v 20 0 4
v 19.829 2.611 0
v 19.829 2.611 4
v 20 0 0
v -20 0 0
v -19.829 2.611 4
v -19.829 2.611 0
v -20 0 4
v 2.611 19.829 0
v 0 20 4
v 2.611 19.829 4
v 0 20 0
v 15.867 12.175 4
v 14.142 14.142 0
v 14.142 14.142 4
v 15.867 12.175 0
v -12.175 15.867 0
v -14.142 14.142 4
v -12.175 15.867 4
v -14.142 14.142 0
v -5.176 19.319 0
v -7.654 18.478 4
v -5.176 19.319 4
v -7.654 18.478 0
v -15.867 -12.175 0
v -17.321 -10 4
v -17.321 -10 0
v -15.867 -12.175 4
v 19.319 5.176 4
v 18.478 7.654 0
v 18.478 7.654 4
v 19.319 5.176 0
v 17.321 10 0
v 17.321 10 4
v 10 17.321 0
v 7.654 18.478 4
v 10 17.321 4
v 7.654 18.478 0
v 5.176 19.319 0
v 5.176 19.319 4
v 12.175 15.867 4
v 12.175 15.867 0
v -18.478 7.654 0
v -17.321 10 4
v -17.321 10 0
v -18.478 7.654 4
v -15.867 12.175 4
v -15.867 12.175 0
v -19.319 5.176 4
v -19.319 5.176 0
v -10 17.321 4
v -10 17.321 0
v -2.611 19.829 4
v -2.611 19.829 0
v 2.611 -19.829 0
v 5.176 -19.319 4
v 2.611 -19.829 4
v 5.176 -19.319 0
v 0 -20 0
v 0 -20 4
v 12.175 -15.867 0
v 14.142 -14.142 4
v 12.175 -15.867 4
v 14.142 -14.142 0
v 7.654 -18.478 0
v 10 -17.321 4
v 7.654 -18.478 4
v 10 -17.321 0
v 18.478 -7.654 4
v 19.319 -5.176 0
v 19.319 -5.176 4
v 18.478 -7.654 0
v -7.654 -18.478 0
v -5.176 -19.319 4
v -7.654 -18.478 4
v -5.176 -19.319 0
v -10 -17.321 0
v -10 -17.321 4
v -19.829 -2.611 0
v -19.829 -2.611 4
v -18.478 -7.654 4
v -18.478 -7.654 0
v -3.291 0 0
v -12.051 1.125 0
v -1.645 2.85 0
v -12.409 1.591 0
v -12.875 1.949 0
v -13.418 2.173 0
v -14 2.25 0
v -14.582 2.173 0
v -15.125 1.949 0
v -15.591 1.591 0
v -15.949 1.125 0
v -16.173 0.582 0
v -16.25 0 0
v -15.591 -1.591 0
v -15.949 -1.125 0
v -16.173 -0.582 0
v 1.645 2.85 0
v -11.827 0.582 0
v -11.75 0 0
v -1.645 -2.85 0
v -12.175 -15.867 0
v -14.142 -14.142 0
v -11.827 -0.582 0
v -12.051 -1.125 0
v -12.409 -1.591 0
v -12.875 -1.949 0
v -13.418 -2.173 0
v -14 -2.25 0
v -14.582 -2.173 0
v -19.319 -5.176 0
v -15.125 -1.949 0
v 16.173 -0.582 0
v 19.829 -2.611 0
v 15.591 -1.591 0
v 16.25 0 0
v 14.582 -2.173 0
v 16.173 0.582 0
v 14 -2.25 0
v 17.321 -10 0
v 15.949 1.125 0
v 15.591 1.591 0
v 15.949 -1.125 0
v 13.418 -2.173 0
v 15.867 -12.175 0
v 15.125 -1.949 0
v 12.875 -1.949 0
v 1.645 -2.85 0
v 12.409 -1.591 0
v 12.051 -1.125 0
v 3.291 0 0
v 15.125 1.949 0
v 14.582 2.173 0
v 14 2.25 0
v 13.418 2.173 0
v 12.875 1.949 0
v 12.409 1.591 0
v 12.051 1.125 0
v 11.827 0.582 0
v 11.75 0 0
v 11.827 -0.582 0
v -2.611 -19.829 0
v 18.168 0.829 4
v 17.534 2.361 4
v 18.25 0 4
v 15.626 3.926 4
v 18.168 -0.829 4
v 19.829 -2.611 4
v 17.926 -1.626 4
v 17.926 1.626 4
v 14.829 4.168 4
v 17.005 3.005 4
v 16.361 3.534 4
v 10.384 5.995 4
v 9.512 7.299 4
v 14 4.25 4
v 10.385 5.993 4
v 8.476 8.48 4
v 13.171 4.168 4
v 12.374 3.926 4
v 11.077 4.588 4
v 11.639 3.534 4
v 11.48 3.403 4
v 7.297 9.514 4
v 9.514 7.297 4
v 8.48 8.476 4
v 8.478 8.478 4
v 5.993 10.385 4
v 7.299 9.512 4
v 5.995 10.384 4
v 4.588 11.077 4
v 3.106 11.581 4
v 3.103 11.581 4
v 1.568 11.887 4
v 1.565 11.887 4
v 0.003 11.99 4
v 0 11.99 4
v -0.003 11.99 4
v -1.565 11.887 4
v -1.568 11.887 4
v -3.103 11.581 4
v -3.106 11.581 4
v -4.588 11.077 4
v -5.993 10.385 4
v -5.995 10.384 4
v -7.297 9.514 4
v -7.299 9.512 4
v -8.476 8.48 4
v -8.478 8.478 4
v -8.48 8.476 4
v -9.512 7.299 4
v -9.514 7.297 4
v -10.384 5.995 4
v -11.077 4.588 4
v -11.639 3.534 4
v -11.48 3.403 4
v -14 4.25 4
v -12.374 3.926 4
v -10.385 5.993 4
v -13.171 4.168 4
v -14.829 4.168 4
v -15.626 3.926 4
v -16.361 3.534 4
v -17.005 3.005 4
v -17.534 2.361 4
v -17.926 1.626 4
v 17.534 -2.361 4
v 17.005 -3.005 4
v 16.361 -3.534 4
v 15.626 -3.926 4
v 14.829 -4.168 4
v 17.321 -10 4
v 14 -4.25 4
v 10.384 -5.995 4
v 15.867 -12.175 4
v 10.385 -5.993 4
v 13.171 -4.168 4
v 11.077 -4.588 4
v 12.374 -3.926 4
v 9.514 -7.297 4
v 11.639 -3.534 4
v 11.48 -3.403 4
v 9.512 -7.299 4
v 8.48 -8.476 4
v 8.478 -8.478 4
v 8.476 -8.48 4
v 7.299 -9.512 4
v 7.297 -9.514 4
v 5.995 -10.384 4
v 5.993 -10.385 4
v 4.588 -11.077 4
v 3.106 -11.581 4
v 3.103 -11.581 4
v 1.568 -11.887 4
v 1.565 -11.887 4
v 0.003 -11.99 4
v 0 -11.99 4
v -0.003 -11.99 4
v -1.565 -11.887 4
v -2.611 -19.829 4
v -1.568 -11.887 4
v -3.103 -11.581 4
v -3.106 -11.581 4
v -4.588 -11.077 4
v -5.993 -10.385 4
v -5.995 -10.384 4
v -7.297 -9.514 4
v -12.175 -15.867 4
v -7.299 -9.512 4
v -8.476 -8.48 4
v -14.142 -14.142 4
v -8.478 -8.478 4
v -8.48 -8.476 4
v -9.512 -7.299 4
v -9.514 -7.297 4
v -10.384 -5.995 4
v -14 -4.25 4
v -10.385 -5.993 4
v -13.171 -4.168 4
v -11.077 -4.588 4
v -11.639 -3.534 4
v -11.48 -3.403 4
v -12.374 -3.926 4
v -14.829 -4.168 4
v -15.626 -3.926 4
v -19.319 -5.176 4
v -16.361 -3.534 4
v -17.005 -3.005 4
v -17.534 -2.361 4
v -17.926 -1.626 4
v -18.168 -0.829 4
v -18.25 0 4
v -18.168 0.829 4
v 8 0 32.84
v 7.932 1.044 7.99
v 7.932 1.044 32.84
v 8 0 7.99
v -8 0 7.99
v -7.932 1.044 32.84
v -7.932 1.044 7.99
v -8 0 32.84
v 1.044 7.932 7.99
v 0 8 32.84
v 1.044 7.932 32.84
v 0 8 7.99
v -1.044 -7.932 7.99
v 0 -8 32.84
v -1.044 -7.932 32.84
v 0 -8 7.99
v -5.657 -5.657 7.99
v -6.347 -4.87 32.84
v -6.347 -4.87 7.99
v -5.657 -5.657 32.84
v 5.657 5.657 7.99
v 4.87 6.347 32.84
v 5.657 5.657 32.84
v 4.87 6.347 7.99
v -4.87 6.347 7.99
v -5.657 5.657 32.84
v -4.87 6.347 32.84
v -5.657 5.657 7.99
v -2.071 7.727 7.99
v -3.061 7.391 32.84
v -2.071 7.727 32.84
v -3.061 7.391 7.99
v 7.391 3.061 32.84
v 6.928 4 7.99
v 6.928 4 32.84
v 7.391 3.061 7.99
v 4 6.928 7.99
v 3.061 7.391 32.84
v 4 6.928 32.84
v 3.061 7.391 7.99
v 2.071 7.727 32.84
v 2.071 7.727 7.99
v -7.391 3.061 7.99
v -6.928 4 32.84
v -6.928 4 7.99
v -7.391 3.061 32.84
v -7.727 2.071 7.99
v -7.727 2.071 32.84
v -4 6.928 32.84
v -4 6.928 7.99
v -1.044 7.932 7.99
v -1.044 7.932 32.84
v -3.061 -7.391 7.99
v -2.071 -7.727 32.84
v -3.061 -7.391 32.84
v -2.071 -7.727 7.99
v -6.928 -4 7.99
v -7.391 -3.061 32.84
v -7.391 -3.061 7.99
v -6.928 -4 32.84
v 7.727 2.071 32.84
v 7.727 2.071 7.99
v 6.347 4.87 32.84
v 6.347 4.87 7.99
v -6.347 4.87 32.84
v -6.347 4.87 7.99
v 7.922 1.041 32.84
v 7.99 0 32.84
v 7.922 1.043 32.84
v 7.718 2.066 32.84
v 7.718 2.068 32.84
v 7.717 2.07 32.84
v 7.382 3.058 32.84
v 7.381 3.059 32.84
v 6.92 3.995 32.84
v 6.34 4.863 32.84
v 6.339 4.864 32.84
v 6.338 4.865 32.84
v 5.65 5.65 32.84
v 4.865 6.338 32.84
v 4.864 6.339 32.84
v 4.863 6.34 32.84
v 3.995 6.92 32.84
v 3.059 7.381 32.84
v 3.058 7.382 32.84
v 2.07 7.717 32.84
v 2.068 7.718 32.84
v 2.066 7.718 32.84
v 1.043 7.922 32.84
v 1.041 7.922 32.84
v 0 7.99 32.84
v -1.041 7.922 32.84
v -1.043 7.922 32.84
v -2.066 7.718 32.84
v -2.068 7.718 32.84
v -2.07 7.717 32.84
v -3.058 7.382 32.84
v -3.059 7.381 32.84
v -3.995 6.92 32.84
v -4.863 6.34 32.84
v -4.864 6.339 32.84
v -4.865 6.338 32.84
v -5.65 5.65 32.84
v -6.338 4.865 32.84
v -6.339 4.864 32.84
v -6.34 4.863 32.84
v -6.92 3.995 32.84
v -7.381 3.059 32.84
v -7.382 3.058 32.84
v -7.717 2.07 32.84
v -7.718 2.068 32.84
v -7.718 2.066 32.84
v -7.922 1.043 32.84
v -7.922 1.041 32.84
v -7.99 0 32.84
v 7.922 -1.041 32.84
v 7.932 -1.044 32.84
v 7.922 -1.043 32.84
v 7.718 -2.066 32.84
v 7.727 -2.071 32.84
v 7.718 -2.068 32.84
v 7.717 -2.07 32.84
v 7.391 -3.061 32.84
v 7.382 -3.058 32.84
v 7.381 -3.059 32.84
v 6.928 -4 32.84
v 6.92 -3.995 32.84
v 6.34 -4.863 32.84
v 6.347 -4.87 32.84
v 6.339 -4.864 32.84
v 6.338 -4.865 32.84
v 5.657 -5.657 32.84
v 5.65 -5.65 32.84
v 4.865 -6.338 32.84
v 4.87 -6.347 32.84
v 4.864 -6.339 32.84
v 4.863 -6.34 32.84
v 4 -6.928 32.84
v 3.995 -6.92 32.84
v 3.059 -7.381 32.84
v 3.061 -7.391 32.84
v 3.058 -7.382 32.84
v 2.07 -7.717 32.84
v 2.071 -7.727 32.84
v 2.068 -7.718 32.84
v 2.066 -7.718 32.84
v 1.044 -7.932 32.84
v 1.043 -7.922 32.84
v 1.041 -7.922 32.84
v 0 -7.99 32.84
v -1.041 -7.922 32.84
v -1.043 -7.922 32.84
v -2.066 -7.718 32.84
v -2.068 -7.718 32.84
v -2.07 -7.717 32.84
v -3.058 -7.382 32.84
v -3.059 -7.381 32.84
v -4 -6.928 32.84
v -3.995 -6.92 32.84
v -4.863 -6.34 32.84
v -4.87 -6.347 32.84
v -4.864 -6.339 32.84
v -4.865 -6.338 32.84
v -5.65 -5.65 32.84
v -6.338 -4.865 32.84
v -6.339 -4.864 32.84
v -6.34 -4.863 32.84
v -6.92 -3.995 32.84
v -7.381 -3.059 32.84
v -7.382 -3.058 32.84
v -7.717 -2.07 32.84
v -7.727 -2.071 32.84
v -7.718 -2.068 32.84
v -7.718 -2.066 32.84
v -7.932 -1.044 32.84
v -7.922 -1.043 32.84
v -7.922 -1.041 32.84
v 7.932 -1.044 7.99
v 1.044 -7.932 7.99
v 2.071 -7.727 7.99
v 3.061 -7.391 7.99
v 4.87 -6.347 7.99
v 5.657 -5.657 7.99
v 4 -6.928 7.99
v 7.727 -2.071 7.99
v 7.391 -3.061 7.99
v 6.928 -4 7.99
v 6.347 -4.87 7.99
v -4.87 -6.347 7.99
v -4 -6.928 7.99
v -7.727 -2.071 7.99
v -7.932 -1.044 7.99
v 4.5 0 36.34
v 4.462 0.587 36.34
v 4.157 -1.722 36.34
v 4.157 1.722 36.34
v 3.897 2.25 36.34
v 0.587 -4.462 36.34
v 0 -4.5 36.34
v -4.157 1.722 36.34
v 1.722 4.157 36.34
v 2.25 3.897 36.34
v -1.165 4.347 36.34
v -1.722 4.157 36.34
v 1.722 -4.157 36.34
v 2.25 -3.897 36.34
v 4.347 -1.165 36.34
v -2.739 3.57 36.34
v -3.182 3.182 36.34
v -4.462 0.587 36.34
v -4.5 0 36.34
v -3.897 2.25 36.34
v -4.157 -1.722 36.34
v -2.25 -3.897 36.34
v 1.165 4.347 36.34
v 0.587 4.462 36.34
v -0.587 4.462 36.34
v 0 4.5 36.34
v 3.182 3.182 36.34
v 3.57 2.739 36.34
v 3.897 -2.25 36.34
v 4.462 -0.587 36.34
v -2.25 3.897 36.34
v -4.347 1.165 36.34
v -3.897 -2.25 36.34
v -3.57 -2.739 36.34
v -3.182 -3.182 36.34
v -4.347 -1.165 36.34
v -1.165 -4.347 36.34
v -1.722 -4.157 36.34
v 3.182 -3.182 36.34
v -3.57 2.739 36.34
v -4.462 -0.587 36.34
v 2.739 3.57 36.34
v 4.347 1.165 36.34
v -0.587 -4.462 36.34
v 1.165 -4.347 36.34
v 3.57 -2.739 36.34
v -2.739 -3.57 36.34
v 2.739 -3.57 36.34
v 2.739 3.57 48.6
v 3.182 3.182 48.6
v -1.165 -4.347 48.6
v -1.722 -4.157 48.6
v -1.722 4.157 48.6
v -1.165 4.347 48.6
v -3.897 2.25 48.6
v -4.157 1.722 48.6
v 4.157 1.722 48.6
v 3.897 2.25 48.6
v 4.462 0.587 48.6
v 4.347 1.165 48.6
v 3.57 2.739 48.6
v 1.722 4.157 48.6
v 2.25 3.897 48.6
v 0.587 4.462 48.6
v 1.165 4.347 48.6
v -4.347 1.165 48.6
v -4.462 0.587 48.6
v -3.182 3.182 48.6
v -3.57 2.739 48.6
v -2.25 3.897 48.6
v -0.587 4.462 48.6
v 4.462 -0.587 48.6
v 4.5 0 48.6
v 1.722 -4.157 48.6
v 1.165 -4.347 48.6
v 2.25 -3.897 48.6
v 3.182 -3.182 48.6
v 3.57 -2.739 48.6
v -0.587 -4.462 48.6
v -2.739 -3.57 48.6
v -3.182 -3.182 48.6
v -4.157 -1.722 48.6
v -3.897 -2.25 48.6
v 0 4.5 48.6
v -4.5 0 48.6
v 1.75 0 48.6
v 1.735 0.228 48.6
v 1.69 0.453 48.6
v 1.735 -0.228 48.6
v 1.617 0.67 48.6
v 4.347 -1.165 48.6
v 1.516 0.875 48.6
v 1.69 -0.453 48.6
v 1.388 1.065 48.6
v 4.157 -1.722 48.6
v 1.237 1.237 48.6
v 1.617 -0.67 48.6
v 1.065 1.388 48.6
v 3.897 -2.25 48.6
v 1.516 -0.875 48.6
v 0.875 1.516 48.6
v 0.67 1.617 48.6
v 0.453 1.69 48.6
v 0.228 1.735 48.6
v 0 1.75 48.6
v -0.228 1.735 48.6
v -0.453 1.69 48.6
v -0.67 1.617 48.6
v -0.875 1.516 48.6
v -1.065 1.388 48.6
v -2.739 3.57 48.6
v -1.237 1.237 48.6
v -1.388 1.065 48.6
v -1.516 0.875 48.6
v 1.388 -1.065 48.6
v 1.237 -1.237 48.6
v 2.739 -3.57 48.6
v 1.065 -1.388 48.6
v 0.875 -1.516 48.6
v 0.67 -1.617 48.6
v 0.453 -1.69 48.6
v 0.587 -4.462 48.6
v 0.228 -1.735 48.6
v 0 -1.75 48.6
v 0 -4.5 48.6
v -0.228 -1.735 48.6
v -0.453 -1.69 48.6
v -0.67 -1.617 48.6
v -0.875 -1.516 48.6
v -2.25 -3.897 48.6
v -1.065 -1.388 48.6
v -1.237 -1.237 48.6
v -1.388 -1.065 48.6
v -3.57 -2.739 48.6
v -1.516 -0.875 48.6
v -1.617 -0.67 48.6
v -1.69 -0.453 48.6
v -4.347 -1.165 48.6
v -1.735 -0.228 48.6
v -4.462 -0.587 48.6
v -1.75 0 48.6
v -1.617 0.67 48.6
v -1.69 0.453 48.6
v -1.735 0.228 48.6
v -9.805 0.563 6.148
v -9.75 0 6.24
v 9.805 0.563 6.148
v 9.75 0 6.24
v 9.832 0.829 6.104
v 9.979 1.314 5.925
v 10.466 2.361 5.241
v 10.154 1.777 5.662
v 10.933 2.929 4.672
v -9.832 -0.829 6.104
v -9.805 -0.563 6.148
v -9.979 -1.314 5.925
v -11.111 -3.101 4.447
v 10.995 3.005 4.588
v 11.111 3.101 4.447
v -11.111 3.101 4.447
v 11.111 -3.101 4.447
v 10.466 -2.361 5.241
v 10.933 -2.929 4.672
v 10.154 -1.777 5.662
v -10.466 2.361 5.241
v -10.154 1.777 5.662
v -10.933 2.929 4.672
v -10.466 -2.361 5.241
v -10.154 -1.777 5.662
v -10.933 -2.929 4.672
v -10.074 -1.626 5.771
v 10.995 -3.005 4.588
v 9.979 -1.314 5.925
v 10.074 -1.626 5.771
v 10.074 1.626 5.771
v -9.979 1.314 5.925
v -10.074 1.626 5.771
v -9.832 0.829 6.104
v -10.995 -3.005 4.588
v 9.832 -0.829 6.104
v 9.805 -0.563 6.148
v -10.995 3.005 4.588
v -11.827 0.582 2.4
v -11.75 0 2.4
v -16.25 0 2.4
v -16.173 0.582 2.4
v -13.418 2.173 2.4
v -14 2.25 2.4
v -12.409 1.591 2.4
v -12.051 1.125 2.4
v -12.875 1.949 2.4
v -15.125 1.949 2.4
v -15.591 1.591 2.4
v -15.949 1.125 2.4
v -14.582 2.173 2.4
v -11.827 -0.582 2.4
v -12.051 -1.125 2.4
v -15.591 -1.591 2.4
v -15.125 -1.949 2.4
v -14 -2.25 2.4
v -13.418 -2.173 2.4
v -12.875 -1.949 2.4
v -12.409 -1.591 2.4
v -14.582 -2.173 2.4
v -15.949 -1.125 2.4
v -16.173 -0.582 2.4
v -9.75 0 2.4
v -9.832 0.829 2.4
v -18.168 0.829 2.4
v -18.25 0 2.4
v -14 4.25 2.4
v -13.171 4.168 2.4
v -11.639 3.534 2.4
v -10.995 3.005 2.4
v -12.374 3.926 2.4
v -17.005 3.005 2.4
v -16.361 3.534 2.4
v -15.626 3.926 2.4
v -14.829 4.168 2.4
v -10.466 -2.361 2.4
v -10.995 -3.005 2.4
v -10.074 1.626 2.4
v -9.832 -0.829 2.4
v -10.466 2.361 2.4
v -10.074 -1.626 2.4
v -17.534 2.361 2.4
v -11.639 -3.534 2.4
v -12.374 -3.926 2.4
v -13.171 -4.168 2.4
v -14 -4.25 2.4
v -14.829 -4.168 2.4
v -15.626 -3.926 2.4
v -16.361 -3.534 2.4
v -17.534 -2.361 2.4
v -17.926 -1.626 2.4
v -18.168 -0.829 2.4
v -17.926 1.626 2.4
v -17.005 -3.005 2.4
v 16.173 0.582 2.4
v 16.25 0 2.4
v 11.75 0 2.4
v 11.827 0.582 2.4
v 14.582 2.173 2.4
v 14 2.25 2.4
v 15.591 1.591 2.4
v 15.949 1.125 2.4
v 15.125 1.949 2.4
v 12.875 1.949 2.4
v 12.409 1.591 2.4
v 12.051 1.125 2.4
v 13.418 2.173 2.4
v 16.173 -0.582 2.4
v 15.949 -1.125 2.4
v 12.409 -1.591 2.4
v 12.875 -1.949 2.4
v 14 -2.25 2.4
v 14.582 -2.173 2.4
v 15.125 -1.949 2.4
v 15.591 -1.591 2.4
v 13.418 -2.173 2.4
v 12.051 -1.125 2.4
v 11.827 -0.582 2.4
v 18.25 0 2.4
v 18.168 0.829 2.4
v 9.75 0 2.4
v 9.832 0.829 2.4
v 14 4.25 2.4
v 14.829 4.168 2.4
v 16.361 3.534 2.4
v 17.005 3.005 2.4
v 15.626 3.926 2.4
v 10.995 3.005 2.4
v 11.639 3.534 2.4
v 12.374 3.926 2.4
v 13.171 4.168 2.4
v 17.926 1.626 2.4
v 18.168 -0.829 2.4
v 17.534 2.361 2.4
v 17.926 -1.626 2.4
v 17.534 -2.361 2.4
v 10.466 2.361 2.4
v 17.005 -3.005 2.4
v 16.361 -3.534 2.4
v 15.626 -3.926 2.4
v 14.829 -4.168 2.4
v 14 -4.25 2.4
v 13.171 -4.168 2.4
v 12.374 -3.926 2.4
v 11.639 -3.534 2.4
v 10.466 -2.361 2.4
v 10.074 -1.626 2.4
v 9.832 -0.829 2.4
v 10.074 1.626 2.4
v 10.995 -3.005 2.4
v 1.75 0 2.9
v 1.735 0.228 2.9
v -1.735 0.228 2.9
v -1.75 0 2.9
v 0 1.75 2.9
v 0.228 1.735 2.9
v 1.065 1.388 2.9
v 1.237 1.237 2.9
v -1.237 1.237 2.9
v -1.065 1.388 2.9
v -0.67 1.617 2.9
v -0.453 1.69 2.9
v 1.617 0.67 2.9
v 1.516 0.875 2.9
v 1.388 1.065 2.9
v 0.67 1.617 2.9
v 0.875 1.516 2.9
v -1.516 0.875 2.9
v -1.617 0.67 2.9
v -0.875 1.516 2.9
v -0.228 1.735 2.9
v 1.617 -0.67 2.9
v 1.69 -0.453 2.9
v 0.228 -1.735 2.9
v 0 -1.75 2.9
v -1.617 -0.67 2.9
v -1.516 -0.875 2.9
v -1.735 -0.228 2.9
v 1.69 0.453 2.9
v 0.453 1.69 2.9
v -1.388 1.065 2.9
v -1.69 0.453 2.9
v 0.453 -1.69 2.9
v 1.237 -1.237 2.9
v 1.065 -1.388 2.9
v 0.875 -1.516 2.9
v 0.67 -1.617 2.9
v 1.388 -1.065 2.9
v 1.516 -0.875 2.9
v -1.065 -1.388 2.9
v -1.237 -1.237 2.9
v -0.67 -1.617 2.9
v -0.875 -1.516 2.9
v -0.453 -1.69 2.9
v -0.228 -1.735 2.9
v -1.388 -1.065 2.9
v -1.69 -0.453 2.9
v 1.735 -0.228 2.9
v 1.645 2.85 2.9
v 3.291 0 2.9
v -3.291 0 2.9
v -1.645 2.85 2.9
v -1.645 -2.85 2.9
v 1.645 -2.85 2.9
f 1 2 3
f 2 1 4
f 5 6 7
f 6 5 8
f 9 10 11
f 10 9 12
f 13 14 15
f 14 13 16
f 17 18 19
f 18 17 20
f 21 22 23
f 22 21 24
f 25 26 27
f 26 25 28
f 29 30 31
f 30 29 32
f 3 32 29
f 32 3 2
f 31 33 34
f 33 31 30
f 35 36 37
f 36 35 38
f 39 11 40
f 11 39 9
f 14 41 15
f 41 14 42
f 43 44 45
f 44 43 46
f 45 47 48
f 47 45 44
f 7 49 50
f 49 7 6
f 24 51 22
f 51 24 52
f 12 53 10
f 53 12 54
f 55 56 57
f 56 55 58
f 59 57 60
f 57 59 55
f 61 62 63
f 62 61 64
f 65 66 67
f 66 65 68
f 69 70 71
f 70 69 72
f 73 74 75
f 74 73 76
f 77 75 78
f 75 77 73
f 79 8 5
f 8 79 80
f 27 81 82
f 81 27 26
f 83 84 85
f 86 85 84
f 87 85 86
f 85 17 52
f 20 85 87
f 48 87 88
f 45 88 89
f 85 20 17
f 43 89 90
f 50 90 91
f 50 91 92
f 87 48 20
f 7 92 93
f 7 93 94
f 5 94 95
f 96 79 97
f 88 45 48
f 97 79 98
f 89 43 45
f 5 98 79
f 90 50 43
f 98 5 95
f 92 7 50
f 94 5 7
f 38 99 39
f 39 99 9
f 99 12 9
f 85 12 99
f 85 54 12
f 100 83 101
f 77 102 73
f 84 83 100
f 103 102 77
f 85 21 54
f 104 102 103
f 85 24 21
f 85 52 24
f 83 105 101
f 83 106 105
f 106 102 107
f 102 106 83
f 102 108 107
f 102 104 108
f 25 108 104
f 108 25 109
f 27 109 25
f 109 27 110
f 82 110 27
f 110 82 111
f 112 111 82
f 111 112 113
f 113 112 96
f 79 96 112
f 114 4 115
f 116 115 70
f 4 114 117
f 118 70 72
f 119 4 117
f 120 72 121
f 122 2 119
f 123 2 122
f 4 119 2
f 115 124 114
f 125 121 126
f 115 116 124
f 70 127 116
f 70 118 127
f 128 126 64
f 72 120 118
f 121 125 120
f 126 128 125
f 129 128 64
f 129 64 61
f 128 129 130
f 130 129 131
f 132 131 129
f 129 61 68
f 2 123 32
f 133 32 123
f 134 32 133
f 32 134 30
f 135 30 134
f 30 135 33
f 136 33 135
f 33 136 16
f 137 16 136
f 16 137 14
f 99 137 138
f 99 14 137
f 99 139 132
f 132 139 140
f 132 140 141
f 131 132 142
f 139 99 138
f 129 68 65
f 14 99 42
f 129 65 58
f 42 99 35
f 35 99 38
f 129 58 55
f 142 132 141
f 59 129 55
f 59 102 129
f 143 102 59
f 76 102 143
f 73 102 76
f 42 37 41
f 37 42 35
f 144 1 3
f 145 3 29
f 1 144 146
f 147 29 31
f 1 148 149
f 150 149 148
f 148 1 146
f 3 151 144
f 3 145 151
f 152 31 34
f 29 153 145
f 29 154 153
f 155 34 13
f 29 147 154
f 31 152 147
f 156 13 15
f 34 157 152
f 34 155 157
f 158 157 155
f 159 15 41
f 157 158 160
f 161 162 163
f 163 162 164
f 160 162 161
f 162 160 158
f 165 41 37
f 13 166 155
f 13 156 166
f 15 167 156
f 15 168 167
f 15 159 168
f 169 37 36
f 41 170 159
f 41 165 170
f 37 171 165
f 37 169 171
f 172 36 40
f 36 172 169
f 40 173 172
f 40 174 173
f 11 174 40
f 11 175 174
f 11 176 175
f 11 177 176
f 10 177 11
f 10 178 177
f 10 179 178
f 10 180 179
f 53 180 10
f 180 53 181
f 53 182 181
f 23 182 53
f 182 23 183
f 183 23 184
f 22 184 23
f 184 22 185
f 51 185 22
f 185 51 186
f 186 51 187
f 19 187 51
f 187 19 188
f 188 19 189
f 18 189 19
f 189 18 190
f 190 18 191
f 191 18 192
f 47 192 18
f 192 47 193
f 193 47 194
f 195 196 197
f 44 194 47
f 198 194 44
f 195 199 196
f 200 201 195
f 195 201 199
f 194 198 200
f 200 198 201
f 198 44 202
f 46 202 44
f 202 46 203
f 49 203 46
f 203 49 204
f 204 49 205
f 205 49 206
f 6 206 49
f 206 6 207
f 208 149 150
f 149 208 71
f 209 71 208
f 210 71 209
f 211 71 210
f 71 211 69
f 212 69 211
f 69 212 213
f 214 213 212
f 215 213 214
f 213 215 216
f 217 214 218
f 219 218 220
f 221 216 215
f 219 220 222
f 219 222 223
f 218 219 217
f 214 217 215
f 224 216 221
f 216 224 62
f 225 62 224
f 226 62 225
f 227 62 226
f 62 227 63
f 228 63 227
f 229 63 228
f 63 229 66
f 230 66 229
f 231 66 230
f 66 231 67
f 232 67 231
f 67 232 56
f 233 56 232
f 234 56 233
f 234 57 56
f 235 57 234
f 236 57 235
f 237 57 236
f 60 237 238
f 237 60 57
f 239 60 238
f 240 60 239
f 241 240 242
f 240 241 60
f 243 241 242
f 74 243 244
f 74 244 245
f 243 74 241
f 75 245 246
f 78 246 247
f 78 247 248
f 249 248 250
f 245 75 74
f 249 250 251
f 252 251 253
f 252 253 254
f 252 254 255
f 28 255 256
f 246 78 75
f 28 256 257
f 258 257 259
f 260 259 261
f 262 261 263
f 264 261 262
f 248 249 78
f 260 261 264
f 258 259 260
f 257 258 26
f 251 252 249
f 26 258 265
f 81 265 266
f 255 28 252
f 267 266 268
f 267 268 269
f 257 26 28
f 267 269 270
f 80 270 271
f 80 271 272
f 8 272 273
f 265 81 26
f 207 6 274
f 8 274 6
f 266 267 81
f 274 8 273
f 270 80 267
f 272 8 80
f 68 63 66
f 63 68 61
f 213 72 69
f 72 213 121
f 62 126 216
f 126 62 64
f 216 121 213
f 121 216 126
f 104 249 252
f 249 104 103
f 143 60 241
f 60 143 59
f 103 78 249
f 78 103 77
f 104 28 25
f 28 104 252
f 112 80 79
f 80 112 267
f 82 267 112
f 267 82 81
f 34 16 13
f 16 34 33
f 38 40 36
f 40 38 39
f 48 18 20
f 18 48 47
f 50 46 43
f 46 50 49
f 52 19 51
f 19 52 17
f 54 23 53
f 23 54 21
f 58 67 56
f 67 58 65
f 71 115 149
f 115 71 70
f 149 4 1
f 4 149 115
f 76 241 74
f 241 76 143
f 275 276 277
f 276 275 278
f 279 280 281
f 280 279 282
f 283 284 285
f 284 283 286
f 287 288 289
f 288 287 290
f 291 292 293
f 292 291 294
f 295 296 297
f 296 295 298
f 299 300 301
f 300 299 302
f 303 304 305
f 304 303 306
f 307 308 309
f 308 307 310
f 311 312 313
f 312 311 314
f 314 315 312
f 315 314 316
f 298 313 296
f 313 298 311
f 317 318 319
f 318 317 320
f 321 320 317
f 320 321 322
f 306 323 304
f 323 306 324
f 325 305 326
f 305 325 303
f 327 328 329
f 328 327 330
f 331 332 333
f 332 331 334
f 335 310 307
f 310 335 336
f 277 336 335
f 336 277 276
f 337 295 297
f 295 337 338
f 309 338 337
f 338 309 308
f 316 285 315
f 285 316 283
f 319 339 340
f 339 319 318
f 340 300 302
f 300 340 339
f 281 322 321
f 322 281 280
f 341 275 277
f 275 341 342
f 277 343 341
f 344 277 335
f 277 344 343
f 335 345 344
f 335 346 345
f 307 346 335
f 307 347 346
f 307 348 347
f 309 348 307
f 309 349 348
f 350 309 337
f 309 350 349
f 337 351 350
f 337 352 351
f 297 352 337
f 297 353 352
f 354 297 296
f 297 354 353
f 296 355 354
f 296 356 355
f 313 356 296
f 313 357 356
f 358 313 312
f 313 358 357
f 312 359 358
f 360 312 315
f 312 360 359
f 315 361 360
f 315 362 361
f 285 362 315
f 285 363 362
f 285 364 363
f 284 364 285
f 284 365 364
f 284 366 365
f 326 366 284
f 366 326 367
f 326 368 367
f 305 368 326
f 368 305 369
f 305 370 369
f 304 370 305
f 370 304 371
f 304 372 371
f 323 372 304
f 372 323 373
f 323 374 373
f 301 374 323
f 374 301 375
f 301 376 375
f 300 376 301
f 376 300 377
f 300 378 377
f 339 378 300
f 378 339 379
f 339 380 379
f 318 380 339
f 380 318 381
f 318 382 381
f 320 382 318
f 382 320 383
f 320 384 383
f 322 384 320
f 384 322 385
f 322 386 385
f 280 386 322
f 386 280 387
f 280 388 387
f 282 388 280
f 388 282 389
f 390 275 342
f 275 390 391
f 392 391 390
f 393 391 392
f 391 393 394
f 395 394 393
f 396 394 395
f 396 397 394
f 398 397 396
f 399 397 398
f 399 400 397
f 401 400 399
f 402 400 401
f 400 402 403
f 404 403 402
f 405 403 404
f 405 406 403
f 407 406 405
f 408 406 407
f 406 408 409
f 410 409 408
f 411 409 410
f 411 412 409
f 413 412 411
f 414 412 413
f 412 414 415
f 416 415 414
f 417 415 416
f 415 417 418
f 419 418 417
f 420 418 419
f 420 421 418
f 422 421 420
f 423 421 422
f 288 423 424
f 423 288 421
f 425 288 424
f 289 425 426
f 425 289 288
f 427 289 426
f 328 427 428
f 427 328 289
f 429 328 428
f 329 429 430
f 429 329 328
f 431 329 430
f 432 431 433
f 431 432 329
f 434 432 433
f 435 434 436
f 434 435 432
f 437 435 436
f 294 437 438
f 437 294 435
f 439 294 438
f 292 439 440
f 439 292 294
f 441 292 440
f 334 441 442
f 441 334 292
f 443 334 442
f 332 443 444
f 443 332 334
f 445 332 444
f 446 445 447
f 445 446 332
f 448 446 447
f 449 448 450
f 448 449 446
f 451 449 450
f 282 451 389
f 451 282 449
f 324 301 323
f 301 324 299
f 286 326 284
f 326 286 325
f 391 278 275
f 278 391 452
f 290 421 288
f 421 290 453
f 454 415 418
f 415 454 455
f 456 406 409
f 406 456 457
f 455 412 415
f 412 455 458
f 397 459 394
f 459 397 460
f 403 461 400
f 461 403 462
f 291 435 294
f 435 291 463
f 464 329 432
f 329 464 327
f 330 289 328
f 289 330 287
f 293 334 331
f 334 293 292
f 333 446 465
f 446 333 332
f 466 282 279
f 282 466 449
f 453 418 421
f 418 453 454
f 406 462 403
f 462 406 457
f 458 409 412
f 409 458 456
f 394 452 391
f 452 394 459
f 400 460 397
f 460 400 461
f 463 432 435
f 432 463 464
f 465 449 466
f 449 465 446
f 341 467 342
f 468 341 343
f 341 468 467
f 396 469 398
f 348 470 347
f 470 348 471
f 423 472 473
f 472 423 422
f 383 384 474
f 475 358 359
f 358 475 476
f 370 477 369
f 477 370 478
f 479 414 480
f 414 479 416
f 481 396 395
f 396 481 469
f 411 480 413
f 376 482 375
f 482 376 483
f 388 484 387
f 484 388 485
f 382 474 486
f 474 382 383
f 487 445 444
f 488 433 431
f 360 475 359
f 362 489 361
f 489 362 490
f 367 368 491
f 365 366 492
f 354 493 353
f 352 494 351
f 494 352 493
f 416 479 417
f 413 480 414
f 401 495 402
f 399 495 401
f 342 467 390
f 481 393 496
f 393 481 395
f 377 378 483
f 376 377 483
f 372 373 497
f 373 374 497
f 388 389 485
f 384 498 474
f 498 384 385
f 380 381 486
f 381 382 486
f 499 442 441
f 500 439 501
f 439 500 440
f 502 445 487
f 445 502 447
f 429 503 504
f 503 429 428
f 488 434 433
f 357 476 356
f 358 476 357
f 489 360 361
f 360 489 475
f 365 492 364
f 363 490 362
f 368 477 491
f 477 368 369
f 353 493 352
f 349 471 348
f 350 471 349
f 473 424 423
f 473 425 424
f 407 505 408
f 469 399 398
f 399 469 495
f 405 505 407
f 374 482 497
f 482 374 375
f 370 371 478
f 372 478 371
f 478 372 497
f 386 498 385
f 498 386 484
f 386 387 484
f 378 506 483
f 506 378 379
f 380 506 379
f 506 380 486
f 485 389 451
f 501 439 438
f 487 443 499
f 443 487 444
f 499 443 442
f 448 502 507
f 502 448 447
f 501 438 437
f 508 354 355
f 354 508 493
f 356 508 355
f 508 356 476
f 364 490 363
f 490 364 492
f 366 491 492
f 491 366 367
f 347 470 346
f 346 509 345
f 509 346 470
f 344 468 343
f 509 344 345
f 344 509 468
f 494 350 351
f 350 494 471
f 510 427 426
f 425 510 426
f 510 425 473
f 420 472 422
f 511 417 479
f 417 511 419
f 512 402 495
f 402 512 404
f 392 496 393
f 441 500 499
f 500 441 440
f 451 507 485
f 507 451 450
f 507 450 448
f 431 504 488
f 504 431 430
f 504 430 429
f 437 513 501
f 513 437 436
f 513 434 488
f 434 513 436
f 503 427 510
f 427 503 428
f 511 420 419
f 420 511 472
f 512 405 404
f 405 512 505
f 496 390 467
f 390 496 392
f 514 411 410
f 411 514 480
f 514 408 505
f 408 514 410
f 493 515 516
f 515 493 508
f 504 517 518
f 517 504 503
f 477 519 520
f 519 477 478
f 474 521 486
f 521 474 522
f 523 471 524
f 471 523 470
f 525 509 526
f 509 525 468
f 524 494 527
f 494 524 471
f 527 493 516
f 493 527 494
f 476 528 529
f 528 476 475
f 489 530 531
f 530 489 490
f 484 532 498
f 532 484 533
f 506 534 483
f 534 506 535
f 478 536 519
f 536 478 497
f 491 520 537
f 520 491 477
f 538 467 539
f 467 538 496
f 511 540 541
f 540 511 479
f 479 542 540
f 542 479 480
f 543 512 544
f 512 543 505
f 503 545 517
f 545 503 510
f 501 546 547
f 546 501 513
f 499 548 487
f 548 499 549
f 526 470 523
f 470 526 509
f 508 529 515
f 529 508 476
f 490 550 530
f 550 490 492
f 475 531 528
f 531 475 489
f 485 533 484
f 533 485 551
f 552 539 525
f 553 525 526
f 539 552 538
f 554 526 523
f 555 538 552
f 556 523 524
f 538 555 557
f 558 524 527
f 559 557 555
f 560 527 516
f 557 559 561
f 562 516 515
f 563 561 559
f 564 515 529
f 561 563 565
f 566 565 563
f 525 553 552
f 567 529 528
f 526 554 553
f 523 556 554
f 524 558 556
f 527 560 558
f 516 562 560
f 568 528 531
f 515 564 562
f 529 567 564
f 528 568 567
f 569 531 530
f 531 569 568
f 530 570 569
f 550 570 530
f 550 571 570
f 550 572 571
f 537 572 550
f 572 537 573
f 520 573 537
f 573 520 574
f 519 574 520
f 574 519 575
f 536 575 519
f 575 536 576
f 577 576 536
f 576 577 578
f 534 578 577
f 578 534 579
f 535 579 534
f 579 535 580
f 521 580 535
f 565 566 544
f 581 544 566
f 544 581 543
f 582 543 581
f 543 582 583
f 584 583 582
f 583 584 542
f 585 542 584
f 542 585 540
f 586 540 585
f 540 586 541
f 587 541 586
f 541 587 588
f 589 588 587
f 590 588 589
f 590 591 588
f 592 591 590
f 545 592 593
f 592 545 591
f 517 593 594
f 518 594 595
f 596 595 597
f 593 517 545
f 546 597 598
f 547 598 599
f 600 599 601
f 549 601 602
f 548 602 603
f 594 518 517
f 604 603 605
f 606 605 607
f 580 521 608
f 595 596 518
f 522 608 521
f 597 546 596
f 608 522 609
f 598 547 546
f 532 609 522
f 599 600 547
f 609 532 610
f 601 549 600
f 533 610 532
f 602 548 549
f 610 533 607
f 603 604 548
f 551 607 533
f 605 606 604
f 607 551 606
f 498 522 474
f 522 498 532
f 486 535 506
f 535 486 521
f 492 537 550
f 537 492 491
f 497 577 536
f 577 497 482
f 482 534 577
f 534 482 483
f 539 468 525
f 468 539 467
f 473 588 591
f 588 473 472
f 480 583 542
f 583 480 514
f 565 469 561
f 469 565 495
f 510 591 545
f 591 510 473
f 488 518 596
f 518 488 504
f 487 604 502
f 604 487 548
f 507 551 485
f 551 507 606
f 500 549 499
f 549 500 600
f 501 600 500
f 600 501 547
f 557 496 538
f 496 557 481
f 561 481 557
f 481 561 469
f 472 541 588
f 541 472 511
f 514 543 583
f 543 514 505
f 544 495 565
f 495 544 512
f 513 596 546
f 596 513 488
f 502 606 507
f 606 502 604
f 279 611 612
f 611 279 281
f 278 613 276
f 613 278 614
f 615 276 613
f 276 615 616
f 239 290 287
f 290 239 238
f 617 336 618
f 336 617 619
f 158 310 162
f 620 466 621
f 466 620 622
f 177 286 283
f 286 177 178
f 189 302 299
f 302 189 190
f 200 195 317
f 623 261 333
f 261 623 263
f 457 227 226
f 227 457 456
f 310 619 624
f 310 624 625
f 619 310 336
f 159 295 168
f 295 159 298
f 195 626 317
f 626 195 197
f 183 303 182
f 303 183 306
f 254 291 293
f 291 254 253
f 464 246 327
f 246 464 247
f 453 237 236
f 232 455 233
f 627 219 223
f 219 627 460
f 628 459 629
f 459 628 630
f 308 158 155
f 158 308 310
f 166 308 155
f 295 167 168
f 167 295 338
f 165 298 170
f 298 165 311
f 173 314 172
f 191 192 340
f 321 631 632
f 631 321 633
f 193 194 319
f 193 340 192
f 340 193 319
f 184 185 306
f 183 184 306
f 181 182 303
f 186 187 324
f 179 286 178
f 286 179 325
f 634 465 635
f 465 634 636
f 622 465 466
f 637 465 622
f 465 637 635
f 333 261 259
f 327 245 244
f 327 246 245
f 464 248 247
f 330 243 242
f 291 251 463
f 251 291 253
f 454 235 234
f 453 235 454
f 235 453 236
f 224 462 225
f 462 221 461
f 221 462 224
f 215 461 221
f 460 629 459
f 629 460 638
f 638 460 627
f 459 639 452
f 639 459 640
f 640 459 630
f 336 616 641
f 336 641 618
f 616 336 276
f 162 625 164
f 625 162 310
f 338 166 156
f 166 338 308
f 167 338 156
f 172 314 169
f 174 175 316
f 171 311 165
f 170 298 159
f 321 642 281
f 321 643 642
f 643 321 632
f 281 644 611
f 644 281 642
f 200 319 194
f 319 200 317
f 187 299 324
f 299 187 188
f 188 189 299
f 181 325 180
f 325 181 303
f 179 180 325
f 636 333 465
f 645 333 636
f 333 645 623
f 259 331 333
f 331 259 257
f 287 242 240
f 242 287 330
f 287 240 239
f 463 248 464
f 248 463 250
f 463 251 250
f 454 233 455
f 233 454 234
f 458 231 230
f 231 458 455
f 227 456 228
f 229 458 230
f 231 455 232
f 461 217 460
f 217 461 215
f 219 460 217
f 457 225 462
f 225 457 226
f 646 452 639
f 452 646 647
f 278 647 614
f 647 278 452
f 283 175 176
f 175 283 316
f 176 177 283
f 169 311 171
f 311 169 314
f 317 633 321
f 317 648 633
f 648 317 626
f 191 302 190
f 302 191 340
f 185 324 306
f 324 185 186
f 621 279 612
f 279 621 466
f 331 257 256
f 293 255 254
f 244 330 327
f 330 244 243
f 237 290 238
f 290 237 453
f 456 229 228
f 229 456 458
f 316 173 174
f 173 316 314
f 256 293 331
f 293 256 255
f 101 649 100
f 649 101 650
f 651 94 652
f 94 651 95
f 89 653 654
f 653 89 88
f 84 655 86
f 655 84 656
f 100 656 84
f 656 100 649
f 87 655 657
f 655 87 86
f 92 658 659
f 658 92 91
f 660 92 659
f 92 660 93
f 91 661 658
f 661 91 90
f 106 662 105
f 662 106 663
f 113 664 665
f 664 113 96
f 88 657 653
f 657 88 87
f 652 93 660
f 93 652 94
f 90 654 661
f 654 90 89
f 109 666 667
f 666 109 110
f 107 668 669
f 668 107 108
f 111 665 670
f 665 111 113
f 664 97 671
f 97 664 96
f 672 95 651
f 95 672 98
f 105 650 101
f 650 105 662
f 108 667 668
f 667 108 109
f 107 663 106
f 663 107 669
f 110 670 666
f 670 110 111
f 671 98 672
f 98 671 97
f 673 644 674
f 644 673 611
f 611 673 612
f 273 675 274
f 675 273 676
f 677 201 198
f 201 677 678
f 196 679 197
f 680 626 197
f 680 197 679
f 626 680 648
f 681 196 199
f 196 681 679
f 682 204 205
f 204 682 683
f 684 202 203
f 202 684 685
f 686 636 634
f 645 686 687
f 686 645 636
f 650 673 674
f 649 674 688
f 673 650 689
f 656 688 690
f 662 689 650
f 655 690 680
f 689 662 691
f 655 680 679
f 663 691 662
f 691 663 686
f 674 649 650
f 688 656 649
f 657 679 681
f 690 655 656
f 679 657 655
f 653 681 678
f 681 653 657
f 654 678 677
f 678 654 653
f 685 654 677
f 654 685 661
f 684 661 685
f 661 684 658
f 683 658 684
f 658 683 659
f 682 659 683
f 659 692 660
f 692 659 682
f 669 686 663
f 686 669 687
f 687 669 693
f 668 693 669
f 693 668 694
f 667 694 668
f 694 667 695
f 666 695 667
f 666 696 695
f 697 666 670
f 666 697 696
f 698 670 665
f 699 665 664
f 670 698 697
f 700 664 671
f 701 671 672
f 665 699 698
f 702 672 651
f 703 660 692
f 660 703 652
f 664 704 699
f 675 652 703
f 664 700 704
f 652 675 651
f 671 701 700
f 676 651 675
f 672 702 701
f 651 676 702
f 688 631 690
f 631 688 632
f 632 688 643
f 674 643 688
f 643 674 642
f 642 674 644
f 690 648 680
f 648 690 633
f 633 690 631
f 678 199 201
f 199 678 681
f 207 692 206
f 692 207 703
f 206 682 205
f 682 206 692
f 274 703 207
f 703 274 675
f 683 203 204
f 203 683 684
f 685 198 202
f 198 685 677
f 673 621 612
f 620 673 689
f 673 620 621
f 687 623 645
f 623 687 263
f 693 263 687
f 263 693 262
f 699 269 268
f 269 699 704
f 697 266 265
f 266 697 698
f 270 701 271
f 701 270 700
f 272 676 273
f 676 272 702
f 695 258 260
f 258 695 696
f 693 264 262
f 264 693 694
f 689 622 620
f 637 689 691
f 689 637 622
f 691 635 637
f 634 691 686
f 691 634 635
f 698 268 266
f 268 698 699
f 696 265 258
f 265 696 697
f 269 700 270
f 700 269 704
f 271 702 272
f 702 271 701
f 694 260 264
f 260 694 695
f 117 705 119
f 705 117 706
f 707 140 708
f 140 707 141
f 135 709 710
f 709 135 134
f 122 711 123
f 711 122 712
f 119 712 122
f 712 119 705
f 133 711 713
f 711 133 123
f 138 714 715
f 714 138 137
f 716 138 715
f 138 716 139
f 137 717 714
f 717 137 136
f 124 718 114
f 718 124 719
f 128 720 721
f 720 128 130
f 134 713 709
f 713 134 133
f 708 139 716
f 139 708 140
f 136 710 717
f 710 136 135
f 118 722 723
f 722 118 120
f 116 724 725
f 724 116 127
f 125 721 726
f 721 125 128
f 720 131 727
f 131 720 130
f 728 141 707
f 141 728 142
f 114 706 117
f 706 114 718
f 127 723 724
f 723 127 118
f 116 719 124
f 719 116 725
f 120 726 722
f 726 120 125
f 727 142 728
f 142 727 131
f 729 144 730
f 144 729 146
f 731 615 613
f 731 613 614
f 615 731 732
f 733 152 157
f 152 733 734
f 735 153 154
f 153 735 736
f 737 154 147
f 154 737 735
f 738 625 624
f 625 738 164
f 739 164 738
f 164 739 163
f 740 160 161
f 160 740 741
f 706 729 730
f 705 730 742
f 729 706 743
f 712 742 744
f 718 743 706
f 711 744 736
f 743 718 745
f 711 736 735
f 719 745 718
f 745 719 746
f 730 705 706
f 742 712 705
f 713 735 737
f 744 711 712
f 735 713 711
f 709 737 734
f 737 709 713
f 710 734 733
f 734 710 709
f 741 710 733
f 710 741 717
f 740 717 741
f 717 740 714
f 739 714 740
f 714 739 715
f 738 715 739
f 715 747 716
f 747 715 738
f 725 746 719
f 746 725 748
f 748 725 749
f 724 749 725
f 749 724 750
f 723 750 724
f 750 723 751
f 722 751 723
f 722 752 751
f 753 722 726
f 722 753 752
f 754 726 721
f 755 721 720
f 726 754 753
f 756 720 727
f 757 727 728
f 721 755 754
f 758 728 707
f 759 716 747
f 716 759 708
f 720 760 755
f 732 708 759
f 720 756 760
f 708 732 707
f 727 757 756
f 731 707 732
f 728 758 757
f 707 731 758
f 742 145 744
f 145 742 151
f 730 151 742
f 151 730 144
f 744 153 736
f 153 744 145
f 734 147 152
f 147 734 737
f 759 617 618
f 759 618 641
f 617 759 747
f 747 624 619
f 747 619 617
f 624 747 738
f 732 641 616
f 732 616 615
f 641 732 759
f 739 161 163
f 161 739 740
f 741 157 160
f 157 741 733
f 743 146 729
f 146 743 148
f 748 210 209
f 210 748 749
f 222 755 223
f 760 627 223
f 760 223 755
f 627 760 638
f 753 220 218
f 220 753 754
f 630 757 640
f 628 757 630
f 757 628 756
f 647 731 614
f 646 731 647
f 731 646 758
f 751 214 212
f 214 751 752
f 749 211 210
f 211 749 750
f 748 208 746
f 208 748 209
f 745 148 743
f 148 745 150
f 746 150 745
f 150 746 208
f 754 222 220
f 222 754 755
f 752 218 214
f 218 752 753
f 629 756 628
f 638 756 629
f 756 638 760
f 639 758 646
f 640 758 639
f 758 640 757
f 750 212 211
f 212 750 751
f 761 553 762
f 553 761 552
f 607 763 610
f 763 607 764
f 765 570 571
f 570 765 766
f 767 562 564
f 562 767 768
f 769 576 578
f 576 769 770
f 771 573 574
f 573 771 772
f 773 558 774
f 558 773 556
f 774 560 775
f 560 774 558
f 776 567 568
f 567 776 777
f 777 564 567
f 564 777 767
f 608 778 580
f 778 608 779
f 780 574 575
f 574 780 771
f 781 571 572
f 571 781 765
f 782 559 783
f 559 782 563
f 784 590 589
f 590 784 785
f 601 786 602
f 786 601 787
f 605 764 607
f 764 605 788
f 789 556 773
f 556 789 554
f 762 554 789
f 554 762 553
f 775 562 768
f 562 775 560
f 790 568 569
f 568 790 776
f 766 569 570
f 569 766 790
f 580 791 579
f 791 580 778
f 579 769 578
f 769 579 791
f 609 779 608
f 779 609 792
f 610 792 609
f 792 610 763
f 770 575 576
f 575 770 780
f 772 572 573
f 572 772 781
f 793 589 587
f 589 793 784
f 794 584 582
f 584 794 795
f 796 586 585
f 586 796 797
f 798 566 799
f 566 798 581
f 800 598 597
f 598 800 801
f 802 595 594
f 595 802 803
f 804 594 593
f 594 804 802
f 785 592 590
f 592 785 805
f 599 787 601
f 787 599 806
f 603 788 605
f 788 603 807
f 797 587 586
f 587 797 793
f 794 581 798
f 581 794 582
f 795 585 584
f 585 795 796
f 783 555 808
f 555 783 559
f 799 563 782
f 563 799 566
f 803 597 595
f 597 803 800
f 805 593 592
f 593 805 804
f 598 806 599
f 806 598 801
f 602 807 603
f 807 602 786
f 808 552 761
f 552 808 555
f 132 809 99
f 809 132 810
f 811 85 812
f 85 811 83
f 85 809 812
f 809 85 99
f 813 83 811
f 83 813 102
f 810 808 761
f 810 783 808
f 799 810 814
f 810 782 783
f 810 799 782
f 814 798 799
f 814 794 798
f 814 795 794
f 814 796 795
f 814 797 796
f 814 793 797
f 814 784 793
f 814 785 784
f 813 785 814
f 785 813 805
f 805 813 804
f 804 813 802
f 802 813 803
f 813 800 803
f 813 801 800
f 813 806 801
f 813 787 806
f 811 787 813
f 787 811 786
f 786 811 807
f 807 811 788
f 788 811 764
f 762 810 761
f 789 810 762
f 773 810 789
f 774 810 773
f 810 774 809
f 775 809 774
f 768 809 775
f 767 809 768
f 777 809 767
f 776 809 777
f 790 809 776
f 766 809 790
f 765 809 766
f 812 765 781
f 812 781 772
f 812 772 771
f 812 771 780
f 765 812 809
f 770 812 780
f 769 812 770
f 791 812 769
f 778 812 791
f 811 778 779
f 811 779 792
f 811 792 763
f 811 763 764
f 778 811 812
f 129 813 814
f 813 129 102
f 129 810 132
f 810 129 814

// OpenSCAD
// Gen-DZ — STATOR POST (2026-11-02 pedestal frame). Print x6, foot DOWN, no supports (45-degree transition).
// Board -> stator underside = post_h (printed post_h - post_shim_t + one post_shim). The top post_slim_h mm are slim (standoff_od) because the rotor-A rim spins right beside them
// (radial clearance = flange_bolt_r - standoff_od/2 - carrier_od/2); the thick part stays >= 2 mm below the rotor-A steel.
// M3 frame rod: captive M3 nut pressed into the hex pocket under the foot BEFORE screwing the post to the board.
include <parameters.scad>;
$fn = 48;
ph = post_h - post_shim_t;   // printed ONE levelling shim short: 1 post_shim on top = nominal height, 0 or 2 shims = -/+ post_shim_t
cone_h = (post_od - standoff_od) / 2;
thick_h = ph - post_slim_h - cone_h;
difference() {
    union() {
        cylinder(d=post_foot_od, h=post_foot_t);
        cylinder(d=post_od, h=thick_h);
        translate([0, 0, thick_h - 0.01]) cylinder(d1=post_od, d2=standoff_od, h=cone_h + 0.01);
        cylinder(d=standoff_od, h=ph);
        translate([0, 0, post_foot_t - 0.01]) cylinder(d1=post_od + 8, d2=post_od, h=4);
    }
    translate([0, 0, -0.1]) cylinder(d=m3_clear, h=ph + 1);
    translate([0, 0, -0.1]) cylinder(d=m3_nut_af / cos(30), h=3.0, $fn=6);
    for (s = [-1, 1]) translate([s * (post_foot_od / 2 - 6), 0, -0.1]) {
        cylinder(d=wood_screw_d, h=post_foot_t + 1, $fn=24);
        translate([0, 0, post_foot_t - 1.5]) cylinder(d=8.5, h=10, $fn=32);
    }
}
